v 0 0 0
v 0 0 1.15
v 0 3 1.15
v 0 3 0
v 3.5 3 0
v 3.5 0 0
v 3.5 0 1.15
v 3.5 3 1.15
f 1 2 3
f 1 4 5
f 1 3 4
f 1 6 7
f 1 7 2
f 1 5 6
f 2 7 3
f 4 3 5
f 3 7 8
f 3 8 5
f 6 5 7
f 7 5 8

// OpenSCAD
/* Warning, this is a very basic generator with a lot of approximation 
input data : [TDFN, HAA, 3.5x3.0x1.15mm, 14, , A, C04-01062A]
generated by com.zoubworld.electronics.cad.model3d.Basic
Date : Sun Feb 15 10:50:49 CET 2026
*/

//body
color("black")
translate([0,0,0])
cube([3.5,3.0,1.15], center=false);
